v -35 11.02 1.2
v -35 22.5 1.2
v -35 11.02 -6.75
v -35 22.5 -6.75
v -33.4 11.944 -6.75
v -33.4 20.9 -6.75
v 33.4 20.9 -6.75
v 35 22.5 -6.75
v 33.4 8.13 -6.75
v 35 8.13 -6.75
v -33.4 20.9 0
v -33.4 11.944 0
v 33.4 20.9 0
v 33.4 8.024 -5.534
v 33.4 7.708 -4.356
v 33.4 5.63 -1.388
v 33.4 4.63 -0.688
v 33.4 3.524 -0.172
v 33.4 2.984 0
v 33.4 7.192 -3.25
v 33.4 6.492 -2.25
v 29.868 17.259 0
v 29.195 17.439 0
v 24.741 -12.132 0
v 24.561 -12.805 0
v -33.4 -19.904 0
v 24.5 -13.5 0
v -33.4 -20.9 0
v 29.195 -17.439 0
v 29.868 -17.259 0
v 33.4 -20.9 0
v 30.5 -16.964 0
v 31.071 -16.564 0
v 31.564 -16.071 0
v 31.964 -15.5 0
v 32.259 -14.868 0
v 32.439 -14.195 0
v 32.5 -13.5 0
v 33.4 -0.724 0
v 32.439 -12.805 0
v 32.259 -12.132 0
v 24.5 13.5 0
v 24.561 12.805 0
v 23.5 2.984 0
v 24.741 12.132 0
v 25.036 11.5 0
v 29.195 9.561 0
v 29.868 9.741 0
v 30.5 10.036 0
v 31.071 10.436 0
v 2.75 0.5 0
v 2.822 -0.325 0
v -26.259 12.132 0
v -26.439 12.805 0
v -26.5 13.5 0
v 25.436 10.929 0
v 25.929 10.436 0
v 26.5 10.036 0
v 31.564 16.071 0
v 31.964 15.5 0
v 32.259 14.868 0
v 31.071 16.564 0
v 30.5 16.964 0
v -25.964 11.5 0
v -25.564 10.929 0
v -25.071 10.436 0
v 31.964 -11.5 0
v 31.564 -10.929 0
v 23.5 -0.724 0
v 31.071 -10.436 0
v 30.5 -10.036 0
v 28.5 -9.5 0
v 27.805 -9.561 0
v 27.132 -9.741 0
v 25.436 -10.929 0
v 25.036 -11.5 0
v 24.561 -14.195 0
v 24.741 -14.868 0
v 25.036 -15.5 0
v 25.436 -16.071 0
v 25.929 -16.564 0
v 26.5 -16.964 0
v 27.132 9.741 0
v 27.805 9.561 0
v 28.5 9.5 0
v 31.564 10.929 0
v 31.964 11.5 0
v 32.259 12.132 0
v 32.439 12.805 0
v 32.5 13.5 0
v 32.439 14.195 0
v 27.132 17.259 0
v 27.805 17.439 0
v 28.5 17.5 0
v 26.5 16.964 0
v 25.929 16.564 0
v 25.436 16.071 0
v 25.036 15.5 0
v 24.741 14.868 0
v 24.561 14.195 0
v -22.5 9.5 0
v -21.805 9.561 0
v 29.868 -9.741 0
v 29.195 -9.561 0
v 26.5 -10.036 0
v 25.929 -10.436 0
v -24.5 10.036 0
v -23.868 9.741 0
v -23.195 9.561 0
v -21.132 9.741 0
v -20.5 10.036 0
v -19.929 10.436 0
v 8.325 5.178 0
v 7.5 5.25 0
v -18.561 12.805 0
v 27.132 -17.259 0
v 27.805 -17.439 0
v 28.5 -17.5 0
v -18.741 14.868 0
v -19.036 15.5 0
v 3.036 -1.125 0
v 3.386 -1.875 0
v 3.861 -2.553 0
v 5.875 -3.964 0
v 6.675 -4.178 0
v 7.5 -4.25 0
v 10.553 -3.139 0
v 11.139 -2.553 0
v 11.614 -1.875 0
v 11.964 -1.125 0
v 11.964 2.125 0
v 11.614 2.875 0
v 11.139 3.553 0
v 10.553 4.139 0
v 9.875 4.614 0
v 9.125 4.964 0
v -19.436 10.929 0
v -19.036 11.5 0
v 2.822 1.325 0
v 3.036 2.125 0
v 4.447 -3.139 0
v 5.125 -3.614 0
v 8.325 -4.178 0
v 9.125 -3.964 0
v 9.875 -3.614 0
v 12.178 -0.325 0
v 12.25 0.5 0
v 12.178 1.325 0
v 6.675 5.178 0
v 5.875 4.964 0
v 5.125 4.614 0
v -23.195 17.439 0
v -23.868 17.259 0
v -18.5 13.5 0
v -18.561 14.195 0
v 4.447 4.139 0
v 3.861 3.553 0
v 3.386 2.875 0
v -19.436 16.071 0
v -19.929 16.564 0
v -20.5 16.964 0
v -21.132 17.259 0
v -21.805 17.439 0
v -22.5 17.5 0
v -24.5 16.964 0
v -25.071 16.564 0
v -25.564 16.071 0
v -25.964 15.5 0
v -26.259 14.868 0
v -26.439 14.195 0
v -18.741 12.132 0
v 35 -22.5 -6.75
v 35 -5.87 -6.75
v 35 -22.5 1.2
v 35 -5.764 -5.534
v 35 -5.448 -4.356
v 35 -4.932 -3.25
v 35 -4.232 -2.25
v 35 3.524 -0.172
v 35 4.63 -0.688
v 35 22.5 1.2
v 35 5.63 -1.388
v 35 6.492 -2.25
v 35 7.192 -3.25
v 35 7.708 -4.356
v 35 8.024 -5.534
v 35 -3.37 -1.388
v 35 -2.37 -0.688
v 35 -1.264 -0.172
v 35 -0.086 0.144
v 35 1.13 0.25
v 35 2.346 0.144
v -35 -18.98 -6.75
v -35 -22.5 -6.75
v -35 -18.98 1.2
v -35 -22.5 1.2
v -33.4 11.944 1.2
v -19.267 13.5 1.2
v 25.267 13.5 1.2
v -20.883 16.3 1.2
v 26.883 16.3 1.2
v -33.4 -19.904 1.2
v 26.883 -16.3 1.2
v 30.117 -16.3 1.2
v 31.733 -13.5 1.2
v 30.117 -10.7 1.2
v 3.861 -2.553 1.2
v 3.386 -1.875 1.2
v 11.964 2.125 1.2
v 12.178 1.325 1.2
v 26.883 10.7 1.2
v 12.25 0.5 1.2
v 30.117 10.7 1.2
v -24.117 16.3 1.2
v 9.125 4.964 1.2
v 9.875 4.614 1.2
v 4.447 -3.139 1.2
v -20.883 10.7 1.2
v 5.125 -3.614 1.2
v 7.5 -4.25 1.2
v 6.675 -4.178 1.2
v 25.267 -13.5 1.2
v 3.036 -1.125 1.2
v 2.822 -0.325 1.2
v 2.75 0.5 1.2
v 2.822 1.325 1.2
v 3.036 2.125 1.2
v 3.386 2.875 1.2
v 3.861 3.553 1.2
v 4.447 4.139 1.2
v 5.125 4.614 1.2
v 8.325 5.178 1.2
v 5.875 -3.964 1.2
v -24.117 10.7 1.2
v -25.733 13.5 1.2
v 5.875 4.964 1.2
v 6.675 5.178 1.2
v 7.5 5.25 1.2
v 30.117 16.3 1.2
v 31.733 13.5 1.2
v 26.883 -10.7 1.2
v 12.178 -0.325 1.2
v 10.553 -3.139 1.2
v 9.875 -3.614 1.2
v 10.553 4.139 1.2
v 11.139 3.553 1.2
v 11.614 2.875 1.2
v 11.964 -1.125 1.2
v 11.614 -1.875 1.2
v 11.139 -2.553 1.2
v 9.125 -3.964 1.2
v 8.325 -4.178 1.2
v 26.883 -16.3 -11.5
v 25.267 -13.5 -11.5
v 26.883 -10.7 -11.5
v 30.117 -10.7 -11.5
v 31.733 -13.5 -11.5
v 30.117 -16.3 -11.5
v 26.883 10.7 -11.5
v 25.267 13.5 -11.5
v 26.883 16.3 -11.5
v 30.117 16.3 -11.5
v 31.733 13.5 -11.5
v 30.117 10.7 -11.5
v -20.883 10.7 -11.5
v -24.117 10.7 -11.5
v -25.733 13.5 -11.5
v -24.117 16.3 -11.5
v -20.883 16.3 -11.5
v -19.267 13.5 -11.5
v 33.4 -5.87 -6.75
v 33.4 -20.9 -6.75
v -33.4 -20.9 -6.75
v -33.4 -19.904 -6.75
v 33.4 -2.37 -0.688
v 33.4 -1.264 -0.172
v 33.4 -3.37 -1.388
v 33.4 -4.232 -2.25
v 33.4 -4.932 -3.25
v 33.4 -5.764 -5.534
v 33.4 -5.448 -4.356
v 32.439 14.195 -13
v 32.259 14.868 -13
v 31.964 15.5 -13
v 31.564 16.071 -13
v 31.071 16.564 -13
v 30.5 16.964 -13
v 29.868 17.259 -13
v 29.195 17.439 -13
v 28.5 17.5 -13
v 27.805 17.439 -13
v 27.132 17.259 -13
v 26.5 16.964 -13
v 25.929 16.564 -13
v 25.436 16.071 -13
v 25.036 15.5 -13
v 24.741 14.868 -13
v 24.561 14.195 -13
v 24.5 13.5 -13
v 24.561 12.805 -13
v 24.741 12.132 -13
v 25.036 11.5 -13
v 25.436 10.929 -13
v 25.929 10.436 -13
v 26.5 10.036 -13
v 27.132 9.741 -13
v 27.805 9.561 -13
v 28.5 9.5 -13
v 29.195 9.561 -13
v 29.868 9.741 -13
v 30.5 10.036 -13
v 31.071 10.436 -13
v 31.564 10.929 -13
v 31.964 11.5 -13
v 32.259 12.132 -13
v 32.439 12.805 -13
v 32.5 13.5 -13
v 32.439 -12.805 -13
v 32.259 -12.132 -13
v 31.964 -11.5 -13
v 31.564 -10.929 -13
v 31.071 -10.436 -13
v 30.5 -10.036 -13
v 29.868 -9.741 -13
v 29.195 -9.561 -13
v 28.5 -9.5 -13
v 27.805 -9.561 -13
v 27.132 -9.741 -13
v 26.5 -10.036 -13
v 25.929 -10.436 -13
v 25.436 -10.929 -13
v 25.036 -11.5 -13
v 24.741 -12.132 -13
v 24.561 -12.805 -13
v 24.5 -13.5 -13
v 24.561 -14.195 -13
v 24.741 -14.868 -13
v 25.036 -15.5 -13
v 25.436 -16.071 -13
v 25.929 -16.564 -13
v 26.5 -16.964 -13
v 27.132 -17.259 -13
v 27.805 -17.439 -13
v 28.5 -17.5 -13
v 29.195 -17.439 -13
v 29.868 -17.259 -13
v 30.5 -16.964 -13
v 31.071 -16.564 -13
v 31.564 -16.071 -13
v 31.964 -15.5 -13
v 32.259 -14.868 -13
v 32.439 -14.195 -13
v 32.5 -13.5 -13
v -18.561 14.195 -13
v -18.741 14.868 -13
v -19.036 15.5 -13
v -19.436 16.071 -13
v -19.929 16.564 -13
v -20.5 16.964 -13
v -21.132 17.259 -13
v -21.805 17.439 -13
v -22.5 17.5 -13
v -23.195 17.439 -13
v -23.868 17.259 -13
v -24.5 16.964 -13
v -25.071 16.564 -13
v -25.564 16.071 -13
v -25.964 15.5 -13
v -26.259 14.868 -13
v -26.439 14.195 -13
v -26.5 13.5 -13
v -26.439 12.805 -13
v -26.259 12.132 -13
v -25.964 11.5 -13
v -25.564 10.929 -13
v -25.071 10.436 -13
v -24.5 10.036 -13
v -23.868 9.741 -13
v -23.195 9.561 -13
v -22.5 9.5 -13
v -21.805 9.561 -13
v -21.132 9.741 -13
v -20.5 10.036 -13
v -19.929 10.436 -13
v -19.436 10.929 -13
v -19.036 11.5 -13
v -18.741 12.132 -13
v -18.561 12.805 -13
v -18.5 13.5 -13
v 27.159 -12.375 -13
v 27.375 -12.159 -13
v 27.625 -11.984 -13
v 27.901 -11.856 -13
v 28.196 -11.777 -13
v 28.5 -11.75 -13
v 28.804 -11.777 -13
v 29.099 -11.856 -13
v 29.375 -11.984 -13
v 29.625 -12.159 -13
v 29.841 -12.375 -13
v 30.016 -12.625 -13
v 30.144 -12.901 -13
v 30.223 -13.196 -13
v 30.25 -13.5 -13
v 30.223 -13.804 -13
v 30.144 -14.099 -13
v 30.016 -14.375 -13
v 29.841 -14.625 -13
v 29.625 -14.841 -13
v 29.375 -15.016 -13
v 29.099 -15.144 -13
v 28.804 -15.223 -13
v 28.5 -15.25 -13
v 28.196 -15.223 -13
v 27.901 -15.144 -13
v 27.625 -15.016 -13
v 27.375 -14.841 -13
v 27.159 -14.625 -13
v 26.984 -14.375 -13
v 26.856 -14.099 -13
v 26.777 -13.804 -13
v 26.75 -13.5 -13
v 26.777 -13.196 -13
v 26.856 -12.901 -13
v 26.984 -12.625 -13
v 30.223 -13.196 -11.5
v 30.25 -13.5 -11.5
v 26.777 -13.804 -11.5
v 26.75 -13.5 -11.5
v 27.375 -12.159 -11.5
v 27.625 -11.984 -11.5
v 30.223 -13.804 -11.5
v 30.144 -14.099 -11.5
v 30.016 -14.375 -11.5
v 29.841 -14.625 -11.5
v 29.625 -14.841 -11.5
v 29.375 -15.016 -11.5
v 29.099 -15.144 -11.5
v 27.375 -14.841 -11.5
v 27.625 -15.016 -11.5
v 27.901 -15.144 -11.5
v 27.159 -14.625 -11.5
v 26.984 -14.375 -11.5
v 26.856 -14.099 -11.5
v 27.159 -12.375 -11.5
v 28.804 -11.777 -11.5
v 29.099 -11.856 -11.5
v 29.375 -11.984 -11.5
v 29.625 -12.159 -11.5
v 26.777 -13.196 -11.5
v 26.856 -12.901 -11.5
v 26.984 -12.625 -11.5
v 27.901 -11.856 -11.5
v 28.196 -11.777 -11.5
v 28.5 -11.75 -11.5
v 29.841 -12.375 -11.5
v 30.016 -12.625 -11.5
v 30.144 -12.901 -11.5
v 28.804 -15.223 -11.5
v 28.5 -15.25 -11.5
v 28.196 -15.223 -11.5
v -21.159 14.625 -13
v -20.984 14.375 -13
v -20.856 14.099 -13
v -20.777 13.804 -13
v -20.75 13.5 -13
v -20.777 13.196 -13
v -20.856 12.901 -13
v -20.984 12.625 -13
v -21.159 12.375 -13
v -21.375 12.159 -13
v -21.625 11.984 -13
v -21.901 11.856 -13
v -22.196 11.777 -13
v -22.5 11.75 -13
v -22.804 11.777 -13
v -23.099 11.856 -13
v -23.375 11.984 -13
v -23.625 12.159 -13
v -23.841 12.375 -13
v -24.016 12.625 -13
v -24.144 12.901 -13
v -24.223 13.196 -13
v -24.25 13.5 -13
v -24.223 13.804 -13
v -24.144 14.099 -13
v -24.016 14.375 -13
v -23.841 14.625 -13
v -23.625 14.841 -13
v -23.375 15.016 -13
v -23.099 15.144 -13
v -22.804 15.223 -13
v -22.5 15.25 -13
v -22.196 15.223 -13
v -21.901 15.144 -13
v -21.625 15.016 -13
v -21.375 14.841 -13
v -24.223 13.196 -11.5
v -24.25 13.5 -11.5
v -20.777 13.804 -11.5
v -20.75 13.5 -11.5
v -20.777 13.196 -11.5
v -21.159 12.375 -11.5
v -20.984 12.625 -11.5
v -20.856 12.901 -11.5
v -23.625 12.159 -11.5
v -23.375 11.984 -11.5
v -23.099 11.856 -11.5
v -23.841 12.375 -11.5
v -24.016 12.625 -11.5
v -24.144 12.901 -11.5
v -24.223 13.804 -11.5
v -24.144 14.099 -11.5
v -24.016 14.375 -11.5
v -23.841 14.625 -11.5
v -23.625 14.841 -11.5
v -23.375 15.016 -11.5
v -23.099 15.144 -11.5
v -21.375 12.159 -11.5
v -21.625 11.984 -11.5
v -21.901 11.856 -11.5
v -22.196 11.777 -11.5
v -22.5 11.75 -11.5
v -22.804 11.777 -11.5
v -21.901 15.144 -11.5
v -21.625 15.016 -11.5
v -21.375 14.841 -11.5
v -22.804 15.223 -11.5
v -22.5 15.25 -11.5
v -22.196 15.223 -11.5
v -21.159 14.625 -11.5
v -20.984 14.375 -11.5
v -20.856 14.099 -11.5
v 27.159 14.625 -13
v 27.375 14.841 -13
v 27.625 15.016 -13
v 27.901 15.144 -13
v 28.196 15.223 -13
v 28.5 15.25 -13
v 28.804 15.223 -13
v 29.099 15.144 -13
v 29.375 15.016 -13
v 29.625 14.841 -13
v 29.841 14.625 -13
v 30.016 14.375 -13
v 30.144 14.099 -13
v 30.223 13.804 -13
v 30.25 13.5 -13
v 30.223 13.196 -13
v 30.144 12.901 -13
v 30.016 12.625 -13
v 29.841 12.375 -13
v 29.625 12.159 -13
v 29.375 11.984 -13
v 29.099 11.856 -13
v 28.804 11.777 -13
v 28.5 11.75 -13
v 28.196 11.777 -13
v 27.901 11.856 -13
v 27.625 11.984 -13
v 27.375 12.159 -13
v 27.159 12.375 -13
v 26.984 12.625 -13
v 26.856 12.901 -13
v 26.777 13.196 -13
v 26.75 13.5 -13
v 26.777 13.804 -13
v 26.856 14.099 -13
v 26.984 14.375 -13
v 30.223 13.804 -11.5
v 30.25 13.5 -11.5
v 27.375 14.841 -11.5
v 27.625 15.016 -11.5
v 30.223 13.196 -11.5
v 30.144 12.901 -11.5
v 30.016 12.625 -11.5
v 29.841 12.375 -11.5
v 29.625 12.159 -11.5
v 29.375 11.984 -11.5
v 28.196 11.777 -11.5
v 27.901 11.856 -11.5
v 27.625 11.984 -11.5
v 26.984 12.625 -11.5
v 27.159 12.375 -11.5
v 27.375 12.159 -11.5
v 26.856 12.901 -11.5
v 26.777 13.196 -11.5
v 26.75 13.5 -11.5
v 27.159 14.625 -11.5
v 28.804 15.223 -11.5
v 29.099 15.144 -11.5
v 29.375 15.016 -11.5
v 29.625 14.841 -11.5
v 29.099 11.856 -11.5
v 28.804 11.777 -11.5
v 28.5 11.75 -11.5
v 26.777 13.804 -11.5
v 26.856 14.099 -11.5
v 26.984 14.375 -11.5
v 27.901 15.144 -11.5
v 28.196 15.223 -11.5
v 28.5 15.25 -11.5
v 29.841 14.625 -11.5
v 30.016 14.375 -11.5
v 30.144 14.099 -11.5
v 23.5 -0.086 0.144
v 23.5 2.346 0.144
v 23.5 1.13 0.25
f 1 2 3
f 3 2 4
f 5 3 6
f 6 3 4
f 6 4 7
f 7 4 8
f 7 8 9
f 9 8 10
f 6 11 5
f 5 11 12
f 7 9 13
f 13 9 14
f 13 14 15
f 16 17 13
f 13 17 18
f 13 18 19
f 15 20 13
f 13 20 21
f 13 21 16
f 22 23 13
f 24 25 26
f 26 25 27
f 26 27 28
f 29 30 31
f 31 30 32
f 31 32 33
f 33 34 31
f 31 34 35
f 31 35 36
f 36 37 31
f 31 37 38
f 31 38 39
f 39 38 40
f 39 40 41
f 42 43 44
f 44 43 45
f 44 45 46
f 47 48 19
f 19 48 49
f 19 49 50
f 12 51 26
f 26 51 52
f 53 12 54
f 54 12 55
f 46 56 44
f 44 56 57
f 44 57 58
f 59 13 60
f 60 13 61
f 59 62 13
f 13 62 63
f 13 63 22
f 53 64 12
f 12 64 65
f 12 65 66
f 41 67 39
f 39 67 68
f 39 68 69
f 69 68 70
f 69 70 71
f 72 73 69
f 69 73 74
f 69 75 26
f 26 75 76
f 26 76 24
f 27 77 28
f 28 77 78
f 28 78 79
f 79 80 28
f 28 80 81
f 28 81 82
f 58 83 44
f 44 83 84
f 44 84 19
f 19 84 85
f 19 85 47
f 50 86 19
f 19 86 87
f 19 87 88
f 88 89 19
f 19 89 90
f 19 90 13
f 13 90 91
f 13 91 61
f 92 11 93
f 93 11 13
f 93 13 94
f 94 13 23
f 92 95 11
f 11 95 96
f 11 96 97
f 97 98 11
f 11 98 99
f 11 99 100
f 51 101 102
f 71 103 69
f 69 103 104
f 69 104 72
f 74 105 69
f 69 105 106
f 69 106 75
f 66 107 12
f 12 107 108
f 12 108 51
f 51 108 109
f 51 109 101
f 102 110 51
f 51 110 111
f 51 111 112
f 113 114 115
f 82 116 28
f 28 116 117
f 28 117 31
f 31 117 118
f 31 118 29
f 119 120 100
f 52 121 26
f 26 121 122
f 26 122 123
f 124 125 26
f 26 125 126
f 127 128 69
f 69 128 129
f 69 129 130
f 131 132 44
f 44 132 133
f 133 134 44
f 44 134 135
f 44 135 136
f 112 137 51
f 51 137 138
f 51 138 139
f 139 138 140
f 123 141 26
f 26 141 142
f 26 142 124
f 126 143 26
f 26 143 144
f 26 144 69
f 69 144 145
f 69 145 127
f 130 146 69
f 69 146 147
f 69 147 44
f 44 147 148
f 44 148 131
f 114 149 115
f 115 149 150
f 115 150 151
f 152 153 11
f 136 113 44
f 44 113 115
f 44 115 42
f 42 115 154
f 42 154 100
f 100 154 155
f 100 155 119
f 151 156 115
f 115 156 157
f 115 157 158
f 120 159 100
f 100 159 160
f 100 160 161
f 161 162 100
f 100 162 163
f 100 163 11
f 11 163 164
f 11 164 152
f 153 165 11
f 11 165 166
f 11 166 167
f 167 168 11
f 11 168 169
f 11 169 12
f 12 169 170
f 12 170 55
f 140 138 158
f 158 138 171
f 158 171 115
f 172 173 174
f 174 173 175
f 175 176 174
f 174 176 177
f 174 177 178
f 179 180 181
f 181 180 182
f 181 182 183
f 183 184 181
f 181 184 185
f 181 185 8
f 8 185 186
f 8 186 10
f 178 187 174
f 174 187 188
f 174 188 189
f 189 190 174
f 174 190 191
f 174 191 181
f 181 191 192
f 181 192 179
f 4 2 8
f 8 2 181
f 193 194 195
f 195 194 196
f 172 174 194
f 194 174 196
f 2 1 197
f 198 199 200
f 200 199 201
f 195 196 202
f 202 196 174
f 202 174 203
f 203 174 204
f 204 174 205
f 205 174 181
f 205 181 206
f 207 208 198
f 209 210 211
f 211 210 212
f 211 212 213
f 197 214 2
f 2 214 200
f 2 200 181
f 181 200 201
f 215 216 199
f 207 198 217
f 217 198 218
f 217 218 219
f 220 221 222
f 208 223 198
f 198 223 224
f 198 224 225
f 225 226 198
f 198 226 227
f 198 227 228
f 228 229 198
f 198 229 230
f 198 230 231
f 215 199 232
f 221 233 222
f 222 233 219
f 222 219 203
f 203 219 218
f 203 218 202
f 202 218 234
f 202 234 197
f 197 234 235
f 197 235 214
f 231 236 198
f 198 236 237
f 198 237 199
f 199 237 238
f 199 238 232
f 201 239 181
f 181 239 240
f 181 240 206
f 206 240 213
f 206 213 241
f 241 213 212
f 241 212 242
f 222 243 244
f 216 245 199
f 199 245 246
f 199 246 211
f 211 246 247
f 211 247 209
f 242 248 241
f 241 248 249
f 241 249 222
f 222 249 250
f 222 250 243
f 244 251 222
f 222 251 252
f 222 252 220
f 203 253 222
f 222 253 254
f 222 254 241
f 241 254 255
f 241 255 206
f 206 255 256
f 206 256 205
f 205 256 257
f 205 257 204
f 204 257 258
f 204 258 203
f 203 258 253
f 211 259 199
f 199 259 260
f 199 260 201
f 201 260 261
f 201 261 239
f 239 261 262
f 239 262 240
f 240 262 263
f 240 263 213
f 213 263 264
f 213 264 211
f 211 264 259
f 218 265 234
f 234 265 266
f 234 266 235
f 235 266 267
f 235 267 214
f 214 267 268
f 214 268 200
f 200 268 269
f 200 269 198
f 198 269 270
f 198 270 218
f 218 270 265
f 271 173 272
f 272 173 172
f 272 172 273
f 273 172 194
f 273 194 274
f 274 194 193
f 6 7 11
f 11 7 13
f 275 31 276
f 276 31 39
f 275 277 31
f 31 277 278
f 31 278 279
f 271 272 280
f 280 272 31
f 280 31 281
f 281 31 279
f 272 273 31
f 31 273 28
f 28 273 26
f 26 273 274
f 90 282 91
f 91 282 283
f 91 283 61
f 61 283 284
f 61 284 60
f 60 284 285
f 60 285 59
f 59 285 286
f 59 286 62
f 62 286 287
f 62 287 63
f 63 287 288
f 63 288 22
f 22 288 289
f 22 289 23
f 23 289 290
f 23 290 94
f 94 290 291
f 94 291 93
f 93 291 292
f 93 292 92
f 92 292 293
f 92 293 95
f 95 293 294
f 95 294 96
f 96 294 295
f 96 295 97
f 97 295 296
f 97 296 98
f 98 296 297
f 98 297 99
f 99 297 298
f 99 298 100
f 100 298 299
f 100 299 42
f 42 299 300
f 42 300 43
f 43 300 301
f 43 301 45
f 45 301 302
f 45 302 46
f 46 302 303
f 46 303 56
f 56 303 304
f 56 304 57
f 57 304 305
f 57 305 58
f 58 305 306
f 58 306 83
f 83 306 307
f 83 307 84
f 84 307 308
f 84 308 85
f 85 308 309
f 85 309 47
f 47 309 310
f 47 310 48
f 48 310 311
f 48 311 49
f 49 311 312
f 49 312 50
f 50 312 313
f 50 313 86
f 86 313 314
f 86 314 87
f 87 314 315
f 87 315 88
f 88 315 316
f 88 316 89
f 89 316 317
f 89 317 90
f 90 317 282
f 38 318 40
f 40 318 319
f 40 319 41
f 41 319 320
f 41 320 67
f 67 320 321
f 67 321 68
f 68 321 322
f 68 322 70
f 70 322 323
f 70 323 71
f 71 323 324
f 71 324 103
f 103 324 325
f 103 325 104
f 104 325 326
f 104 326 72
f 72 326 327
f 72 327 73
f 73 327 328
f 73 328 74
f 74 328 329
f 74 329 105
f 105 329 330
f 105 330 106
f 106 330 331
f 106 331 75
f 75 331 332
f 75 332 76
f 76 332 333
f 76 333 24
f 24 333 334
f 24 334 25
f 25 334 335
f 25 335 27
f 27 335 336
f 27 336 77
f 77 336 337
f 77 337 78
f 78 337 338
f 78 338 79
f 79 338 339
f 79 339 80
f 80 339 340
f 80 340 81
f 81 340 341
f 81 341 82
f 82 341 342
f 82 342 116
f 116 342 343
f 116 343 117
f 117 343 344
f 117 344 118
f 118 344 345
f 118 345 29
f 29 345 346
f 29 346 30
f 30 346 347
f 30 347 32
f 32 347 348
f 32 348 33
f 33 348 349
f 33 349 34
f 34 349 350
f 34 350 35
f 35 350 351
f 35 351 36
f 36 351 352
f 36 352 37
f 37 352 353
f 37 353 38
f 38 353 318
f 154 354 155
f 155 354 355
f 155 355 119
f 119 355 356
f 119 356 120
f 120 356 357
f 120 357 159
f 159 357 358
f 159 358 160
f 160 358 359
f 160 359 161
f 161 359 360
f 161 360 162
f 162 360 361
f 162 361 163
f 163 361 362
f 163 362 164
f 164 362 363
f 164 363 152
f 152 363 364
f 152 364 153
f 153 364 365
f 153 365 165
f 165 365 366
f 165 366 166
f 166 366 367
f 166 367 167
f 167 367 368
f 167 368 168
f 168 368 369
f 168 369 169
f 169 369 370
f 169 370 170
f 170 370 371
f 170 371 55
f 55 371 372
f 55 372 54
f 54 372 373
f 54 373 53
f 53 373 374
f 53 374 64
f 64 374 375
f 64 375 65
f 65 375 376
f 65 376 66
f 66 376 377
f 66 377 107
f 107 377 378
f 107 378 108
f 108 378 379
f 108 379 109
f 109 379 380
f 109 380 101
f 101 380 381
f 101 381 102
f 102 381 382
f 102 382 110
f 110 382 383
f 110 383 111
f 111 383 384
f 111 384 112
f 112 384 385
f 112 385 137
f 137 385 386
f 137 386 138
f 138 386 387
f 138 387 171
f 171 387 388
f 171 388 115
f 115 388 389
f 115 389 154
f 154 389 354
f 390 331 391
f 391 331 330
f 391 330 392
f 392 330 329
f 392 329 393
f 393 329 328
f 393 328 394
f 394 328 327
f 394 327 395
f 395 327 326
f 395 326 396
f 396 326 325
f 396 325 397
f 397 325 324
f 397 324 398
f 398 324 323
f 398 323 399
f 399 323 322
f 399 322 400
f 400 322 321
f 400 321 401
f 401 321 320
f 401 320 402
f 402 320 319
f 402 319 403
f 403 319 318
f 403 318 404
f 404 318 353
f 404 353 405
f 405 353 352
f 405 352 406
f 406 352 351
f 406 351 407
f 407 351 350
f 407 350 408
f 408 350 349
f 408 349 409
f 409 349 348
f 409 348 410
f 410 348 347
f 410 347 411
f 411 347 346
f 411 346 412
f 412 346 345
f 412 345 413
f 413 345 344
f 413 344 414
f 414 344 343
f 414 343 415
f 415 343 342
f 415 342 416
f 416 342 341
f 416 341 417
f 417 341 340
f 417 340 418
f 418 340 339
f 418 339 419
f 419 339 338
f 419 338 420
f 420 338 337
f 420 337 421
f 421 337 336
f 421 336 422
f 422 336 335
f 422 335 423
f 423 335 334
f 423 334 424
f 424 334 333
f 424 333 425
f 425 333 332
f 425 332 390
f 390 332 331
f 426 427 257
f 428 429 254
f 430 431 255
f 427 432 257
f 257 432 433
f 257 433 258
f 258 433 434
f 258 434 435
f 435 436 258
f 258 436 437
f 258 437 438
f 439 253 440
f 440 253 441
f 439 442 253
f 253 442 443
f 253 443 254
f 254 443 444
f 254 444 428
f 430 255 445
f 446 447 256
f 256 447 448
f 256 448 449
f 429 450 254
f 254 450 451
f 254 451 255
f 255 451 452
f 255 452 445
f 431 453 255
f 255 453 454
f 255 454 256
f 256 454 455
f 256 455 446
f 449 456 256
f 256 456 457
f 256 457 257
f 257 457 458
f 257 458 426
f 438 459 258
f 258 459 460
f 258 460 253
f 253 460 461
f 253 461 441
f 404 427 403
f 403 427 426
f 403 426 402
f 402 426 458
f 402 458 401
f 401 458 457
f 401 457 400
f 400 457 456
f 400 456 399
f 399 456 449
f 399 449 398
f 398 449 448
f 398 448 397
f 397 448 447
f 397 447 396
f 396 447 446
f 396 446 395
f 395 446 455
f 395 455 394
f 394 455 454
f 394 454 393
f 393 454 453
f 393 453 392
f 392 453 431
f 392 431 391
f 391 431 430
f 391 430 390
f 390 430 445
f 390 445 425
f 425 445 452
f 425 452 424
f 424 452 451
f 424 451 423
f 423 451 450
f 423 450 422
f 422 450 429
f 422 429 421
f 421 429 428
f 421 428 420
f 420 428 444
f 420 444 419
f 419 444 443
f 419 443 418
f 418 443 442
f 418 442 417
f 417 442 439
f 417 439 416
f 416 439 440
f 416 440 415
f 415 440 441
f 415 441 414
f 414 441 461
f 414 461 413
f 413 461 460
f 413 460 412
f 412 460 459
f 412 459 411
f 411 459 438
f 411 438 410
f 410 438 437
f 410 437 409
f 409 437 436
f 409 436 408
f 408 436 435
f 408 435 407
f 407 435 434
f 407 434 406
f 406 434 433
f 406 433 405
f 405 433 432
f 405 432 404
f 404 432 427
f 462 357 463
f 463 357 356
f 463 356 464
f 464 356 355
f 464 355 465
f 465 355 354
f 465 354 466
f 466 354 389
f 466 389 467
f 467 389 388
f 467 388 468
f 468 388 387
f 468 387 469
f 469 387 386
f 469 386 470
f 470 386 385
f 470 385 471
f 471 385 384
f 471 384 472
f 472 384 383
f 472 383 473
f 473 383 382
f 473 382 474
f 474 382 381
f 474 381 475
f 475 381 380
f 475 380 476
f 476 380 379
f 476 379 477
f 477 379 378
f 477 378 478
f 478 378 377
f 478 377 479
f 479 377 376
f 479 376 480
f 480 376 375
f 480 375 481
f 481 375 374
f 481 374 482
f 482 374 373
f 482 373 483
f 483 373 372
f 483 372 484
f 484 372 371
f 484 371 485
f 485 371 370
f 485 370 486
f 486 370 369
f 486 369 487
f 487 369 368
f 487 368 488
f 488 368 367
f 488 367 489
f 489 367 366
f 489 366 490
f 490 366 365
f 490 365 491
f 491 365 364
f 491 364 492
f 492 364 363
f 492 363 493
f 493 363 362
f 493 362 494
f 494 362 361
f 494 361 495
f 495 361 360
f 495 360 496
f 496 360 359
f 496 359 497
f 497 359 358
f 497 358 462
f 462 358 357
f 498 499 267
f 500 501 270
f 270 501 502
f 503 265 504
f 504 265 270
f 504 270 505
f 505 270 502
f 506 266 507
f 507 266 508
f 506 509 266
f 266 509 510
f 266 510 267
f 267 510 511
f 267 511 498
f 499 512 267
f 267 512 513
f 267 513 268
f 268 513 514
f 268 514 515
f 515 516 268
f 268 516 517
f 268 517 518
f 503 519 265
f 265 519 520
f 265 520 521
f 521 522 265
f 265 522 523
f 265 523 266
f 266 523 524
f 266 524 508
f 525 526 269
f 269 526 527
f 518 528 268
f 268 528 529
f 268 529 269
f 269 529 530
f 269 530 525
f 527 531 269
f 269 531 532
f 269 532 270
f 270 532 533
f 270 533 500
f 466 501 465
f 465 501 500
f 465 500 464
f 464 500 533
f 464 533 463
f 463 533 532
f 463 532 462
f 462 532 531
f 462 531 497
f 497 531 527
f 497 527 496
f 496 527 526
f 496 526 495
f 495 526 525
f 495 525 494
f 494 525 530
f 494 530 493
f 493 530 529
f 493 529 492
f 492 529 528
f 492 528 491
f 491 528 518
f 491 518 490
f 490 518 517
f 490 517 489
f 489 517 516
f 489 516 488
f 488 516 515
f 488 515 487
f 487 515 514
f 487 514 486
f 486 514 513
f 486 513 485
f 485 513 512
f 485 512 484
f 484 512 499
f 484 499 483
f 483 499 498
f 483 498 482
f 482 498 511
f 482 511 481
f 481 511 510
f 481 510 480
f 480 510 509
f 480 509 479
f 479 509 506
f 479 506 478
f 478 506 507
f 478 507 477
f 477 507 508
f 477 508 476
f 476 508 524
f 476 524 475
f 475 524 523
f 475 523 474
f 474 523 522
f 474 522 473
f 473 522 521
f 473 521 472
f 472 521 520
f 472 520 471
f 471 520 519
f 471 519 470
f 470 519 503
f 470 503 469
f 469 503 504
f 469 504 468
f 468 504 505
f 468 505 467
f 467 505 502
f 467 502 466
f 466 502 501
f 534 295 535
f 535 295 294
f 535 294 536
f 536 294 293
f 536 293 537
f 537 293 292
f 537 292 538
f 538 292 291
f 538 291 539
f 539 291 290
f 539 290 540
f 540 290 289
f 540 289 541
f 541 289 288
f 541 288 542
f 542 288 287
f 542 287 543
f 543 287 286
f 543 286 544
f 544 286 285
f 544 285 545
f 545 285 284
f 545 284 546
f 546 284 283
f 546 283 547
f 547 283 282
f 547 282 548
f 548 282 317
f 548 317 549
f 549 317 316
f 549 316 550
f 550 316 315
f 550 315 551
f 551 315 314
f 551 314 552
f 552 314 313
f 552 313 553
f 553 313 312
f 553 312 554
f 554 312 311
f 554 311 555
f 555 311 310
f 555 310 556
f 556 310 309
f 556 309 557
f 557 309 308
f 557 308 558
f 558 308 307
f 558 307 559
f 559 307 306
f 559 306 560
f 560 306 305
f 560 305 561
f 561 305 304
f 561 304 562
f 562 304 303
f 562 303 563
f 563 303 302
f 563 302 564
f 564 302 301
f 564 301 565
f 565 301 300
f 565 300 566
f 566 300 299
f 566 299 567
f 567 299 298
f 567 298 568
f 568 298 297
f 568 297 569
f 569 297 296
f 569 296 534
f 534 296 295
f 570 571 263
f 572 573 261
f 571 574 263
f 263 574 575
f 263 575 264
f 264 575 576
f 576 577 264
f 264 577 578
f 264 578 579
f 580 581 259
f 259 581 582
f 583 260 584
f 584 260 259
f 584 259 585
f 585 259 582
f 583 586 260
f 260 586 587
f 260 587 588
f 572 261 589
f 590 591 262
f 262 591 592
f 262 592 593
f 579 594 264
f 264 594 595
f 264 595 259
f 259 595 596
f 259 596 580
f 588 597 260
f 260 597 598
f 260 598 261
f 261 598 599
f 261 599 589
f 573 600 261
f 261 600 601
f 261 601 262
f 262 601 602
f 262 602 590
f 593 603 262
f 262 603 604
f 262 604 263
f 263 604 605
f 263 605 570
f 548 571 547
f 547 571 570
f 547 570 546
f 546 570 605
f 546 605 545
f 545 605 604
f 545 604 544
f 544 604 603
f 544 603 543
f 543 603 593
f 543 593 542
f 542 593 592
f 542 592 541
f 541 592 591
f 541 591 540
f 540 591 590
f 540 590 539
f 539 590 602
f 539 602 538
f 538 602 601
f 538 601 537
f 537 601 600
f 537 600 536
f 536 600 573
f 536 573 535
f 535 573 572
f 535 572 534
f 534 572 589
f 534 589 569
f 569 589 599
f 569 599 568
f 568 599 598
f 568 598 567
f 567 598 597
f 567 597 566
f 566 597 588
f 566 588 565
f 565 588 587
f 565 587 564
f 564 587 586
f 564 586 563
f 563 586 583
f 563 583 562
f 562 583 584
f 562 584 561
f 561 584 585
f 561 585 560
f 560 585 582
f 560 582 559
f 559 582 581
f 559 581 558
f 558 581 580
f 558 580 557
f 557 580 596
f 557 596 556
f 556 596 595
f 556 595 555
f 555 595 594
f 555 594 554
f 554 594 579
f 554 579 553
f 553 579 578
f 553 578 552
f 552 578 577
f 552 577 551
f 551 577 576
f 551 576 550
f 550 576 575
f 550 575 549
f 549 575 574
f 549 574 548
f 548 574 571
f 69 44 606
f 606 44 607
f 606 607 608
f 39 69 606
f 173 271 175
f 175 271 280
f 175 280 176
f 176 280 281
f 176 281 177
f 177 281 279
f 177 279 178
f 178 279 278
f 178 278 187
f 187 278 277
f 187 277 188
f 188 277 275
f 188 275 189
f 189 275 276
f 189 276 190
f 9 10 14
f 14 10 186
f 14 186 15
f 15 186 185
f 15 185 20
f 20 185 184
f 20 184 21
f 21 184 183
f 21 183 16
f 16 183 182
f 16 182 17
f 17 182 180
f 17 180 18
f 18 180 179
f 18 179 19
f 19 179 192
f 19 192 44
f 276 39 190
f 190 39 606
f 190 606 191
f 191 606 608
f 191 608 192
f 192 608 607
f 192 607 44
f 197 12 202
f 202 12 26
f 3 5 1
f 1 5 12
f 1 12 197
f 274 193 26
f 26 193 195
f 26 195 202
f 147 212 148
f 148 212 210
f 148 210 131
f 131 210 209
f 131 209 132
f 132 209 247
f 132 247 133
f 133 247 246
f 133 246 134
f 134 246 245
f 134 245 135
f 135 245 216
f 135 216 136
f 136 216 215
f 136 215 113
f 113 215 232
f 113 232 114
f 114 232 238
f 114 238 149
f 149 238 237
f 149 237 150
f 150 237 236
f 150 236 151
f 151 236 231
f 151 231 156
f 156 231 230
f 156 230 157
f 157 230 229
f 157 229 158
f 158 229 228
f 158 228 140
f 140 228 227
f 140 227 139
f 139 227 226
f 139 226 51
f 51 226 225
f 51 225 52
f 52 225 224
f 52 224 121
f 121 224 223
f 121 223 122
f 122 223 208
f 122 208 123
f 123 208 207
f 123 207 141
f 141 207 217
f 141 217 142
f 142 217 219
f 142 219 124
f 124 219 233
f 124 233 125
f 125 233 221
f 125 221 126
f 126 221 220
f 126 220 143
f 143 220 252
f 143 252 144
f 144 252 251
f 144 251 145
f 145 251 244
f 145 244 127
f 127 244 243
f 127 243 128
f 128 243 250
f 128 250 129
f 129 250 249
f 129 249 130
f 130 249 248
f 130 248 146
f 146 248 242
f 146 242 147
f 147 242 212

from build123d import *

# Parameters (mm, degrees)
SKETCH1_W           = 70
SKETCH1_H           = 45
BOSS_EXTRUDE1_DEPTH = 1.2
CUT_EXTRUDE1_DEPTH  = 11.2
SKETCH3_W           = 70
SKETCH3_H           = 45
SKETCH3_W_2         = 66.8
SKETCH3_H_2         = 41.8
BOSS_EXTRUDE2_DEPTH = 6.75
SKETCH4_R           = 4
BOSS_EXTRUDE3_DEPTH = 11.5
SKETCH5_R           = 4
SKETCH5_R_2         = 1.75
BOSS_EXTRUDE4_DEPTH = 1.5
SKETCH6_R           = 7
CUT_EXTRUDE2_DEPTH  = 11.5
CUT_EXTRUDE3_DEPTH  = 10
SKETCH8_R           = 4.75
CUT_EXTRUDE4_DEPTH  = 10


with BuildPart() as part:
    # Sketch1 → Boss-Extrude1 (new body)
    with BuildSketch(Plane.XY):
        Rectangle(SKETCH1_W, SKETCH1_H)
    extrude(amount=BOSS_EXTRUDE1_DEPTH)

    # Sketch2 → Cut-Extrude1 (cut)
    with BuildSketch(Plane.XY.offset(1.2)):
        Polygon((-20.883419246, 10.7), (-19.266838493, 13.5), (-20.883419246, 16.3), (-24.116580754, 16.3), (-25.733161507, 13.5), (-24.116580754, 10.7), align=None)
        Polygon((26.883419246, 10.7), (30.116580754, 10.7), (31.733161507, 13.5), (30.116580754, 16.3), (26.883419246, 16.3), (25.266838493, 13.5), align=None)
        Polygon((26.883419246, -16.3), (30.116580754, -16.3), (31.733161507, -13.5), (30.116580754, -10.7), (26.883419246, -10.7), (25.266838493, -13.5), align=None)
    extrude(amount=-CUT_EXTRUDE1_DEPTH, mode=Mode.SUBTRACT)

    # Sketch3 → Boss-Extrude2 (add)
    with BuildSketch(Plane(origin=(0, 0, 0), x_dir=(-1, 0, 0), z_dir=(0, 0, -1))):
        Rectangle(SKETCH3_W, SKETCH3_H)
        Rectangle(SKETCH3_W_2, SKETCH3_H_2, mode=Mode.SUBTRACT)
    extrude(amount=BOSS_EXTRUDE2_DEPTH)

    # Sketch4 → Boss-Extrude3 (add)
    with BuildSketch(Plane(origin=(0, 0, 0), x_dir=(-1, 0, 0), z_dir=(0, 0, -1))):
        with Locations((-28.5, 13.5)):
            Circle(SKETCH4_R)
        Polygon((-26.883419246, 10.7), (-30.116580754, 10.7), (-31.733161507, 13.5), (-30.116580754, 16.3), (-26.883419246, 16.3), (-25.266838493, 13.5), align=None, mode=Mode.SUBTRACT)
        with Locations((-28.5, -13.5)):
            Circle(SKETCH4_R)
        Polygon((-26.883419246, -10.7), (-25.266838493, -13.5), (-26.883419246, -16.3), (-30.116580754, -16.3), (-31.733161507, -13.5), (-30.116580754, -10.7), align=None, mode=Mode.SUBTRACT)
        with Locations((22.5, 13.5)):
            Circle(SKETCH4_R)
        Polygon((24.116580754, 10.7), (20.883419246, 10.7), (19.266838493, 13.5), (20.883419246, 16.3), (24.116580754, 16.3), (25.733161507, 13.5), align=None, mode=Mode.SUBTRACT)
    extrude(amount=BOSS_EXTRUDE3_DEPTH)

    # Sketch5 → Boss-Extrude4 (add)
    with BuildSketch(Plane(origin=(0, 0, -11.5), x_dir=(-1, 0, 0), z_dir=(0, 0, -1))):
        with Locations((-28.5, -13.5)):
            Circle(SKETCH5_R)
        with Locations((-28.5, -13.5)):
            Circle(SKETCH5_R_2, mode=Mode.SUBTRACT)
        with Locations((22.5, 13.5)):
            Circle(SKETCH5_R)
        with Locations((22.5, 13.5)):
            Circle(SKETCH5_R_2, mode=Mode.SUBTRACT)
        with Locations((-28.5, 13.5)):
            Circle(SKETCH5_R)
        with Locations((-28.5, 13.5)):
            Circle(SKETCH5_R_2, mode=Mode.SUBTRACT)
    extrude(amount=BOSS_EXTRUDE4_DEPTH)

    # Sketch6 → Cut-Extrude2 (cut)
    with BuildSketch(Plane(origin=(35, 0, 0), x_dir=(0, 0, -1), z_dir=(1, 0, 0))):
        with Locations((6.75, 1.13)):
            Circle(SKETCH6_R)
    extrude(amount=-CUT_EXTRUDE2_DEPTH, mode=Mode.SUBTRACT)

    # Sketch7 → Cut-Extrude3 (cut)
    with BuildSketch(Plane.XY.offset(1.2)):
        Polygon((-35, 11.02), (-33.4, 11.943760431), (-33.4, -19.903760431), (-35, -18.98), align=None)
    extrude(amount=-CUT_EXTRUDE3_DEPTH, mode=Mode.SUBTRACT)

    # Sketch8 → Cut-Extrude4 (cut)
    with BuildSketch(Plane.XY.offset(1.2)):
        with Locations((7.5, 0.5)):
            Circle(SKETCH8_R)
    extrude(amount=-CUT_EXTRUDE4_DEPTH, mode=Mode.SUBTRACT)


solid = part.part
